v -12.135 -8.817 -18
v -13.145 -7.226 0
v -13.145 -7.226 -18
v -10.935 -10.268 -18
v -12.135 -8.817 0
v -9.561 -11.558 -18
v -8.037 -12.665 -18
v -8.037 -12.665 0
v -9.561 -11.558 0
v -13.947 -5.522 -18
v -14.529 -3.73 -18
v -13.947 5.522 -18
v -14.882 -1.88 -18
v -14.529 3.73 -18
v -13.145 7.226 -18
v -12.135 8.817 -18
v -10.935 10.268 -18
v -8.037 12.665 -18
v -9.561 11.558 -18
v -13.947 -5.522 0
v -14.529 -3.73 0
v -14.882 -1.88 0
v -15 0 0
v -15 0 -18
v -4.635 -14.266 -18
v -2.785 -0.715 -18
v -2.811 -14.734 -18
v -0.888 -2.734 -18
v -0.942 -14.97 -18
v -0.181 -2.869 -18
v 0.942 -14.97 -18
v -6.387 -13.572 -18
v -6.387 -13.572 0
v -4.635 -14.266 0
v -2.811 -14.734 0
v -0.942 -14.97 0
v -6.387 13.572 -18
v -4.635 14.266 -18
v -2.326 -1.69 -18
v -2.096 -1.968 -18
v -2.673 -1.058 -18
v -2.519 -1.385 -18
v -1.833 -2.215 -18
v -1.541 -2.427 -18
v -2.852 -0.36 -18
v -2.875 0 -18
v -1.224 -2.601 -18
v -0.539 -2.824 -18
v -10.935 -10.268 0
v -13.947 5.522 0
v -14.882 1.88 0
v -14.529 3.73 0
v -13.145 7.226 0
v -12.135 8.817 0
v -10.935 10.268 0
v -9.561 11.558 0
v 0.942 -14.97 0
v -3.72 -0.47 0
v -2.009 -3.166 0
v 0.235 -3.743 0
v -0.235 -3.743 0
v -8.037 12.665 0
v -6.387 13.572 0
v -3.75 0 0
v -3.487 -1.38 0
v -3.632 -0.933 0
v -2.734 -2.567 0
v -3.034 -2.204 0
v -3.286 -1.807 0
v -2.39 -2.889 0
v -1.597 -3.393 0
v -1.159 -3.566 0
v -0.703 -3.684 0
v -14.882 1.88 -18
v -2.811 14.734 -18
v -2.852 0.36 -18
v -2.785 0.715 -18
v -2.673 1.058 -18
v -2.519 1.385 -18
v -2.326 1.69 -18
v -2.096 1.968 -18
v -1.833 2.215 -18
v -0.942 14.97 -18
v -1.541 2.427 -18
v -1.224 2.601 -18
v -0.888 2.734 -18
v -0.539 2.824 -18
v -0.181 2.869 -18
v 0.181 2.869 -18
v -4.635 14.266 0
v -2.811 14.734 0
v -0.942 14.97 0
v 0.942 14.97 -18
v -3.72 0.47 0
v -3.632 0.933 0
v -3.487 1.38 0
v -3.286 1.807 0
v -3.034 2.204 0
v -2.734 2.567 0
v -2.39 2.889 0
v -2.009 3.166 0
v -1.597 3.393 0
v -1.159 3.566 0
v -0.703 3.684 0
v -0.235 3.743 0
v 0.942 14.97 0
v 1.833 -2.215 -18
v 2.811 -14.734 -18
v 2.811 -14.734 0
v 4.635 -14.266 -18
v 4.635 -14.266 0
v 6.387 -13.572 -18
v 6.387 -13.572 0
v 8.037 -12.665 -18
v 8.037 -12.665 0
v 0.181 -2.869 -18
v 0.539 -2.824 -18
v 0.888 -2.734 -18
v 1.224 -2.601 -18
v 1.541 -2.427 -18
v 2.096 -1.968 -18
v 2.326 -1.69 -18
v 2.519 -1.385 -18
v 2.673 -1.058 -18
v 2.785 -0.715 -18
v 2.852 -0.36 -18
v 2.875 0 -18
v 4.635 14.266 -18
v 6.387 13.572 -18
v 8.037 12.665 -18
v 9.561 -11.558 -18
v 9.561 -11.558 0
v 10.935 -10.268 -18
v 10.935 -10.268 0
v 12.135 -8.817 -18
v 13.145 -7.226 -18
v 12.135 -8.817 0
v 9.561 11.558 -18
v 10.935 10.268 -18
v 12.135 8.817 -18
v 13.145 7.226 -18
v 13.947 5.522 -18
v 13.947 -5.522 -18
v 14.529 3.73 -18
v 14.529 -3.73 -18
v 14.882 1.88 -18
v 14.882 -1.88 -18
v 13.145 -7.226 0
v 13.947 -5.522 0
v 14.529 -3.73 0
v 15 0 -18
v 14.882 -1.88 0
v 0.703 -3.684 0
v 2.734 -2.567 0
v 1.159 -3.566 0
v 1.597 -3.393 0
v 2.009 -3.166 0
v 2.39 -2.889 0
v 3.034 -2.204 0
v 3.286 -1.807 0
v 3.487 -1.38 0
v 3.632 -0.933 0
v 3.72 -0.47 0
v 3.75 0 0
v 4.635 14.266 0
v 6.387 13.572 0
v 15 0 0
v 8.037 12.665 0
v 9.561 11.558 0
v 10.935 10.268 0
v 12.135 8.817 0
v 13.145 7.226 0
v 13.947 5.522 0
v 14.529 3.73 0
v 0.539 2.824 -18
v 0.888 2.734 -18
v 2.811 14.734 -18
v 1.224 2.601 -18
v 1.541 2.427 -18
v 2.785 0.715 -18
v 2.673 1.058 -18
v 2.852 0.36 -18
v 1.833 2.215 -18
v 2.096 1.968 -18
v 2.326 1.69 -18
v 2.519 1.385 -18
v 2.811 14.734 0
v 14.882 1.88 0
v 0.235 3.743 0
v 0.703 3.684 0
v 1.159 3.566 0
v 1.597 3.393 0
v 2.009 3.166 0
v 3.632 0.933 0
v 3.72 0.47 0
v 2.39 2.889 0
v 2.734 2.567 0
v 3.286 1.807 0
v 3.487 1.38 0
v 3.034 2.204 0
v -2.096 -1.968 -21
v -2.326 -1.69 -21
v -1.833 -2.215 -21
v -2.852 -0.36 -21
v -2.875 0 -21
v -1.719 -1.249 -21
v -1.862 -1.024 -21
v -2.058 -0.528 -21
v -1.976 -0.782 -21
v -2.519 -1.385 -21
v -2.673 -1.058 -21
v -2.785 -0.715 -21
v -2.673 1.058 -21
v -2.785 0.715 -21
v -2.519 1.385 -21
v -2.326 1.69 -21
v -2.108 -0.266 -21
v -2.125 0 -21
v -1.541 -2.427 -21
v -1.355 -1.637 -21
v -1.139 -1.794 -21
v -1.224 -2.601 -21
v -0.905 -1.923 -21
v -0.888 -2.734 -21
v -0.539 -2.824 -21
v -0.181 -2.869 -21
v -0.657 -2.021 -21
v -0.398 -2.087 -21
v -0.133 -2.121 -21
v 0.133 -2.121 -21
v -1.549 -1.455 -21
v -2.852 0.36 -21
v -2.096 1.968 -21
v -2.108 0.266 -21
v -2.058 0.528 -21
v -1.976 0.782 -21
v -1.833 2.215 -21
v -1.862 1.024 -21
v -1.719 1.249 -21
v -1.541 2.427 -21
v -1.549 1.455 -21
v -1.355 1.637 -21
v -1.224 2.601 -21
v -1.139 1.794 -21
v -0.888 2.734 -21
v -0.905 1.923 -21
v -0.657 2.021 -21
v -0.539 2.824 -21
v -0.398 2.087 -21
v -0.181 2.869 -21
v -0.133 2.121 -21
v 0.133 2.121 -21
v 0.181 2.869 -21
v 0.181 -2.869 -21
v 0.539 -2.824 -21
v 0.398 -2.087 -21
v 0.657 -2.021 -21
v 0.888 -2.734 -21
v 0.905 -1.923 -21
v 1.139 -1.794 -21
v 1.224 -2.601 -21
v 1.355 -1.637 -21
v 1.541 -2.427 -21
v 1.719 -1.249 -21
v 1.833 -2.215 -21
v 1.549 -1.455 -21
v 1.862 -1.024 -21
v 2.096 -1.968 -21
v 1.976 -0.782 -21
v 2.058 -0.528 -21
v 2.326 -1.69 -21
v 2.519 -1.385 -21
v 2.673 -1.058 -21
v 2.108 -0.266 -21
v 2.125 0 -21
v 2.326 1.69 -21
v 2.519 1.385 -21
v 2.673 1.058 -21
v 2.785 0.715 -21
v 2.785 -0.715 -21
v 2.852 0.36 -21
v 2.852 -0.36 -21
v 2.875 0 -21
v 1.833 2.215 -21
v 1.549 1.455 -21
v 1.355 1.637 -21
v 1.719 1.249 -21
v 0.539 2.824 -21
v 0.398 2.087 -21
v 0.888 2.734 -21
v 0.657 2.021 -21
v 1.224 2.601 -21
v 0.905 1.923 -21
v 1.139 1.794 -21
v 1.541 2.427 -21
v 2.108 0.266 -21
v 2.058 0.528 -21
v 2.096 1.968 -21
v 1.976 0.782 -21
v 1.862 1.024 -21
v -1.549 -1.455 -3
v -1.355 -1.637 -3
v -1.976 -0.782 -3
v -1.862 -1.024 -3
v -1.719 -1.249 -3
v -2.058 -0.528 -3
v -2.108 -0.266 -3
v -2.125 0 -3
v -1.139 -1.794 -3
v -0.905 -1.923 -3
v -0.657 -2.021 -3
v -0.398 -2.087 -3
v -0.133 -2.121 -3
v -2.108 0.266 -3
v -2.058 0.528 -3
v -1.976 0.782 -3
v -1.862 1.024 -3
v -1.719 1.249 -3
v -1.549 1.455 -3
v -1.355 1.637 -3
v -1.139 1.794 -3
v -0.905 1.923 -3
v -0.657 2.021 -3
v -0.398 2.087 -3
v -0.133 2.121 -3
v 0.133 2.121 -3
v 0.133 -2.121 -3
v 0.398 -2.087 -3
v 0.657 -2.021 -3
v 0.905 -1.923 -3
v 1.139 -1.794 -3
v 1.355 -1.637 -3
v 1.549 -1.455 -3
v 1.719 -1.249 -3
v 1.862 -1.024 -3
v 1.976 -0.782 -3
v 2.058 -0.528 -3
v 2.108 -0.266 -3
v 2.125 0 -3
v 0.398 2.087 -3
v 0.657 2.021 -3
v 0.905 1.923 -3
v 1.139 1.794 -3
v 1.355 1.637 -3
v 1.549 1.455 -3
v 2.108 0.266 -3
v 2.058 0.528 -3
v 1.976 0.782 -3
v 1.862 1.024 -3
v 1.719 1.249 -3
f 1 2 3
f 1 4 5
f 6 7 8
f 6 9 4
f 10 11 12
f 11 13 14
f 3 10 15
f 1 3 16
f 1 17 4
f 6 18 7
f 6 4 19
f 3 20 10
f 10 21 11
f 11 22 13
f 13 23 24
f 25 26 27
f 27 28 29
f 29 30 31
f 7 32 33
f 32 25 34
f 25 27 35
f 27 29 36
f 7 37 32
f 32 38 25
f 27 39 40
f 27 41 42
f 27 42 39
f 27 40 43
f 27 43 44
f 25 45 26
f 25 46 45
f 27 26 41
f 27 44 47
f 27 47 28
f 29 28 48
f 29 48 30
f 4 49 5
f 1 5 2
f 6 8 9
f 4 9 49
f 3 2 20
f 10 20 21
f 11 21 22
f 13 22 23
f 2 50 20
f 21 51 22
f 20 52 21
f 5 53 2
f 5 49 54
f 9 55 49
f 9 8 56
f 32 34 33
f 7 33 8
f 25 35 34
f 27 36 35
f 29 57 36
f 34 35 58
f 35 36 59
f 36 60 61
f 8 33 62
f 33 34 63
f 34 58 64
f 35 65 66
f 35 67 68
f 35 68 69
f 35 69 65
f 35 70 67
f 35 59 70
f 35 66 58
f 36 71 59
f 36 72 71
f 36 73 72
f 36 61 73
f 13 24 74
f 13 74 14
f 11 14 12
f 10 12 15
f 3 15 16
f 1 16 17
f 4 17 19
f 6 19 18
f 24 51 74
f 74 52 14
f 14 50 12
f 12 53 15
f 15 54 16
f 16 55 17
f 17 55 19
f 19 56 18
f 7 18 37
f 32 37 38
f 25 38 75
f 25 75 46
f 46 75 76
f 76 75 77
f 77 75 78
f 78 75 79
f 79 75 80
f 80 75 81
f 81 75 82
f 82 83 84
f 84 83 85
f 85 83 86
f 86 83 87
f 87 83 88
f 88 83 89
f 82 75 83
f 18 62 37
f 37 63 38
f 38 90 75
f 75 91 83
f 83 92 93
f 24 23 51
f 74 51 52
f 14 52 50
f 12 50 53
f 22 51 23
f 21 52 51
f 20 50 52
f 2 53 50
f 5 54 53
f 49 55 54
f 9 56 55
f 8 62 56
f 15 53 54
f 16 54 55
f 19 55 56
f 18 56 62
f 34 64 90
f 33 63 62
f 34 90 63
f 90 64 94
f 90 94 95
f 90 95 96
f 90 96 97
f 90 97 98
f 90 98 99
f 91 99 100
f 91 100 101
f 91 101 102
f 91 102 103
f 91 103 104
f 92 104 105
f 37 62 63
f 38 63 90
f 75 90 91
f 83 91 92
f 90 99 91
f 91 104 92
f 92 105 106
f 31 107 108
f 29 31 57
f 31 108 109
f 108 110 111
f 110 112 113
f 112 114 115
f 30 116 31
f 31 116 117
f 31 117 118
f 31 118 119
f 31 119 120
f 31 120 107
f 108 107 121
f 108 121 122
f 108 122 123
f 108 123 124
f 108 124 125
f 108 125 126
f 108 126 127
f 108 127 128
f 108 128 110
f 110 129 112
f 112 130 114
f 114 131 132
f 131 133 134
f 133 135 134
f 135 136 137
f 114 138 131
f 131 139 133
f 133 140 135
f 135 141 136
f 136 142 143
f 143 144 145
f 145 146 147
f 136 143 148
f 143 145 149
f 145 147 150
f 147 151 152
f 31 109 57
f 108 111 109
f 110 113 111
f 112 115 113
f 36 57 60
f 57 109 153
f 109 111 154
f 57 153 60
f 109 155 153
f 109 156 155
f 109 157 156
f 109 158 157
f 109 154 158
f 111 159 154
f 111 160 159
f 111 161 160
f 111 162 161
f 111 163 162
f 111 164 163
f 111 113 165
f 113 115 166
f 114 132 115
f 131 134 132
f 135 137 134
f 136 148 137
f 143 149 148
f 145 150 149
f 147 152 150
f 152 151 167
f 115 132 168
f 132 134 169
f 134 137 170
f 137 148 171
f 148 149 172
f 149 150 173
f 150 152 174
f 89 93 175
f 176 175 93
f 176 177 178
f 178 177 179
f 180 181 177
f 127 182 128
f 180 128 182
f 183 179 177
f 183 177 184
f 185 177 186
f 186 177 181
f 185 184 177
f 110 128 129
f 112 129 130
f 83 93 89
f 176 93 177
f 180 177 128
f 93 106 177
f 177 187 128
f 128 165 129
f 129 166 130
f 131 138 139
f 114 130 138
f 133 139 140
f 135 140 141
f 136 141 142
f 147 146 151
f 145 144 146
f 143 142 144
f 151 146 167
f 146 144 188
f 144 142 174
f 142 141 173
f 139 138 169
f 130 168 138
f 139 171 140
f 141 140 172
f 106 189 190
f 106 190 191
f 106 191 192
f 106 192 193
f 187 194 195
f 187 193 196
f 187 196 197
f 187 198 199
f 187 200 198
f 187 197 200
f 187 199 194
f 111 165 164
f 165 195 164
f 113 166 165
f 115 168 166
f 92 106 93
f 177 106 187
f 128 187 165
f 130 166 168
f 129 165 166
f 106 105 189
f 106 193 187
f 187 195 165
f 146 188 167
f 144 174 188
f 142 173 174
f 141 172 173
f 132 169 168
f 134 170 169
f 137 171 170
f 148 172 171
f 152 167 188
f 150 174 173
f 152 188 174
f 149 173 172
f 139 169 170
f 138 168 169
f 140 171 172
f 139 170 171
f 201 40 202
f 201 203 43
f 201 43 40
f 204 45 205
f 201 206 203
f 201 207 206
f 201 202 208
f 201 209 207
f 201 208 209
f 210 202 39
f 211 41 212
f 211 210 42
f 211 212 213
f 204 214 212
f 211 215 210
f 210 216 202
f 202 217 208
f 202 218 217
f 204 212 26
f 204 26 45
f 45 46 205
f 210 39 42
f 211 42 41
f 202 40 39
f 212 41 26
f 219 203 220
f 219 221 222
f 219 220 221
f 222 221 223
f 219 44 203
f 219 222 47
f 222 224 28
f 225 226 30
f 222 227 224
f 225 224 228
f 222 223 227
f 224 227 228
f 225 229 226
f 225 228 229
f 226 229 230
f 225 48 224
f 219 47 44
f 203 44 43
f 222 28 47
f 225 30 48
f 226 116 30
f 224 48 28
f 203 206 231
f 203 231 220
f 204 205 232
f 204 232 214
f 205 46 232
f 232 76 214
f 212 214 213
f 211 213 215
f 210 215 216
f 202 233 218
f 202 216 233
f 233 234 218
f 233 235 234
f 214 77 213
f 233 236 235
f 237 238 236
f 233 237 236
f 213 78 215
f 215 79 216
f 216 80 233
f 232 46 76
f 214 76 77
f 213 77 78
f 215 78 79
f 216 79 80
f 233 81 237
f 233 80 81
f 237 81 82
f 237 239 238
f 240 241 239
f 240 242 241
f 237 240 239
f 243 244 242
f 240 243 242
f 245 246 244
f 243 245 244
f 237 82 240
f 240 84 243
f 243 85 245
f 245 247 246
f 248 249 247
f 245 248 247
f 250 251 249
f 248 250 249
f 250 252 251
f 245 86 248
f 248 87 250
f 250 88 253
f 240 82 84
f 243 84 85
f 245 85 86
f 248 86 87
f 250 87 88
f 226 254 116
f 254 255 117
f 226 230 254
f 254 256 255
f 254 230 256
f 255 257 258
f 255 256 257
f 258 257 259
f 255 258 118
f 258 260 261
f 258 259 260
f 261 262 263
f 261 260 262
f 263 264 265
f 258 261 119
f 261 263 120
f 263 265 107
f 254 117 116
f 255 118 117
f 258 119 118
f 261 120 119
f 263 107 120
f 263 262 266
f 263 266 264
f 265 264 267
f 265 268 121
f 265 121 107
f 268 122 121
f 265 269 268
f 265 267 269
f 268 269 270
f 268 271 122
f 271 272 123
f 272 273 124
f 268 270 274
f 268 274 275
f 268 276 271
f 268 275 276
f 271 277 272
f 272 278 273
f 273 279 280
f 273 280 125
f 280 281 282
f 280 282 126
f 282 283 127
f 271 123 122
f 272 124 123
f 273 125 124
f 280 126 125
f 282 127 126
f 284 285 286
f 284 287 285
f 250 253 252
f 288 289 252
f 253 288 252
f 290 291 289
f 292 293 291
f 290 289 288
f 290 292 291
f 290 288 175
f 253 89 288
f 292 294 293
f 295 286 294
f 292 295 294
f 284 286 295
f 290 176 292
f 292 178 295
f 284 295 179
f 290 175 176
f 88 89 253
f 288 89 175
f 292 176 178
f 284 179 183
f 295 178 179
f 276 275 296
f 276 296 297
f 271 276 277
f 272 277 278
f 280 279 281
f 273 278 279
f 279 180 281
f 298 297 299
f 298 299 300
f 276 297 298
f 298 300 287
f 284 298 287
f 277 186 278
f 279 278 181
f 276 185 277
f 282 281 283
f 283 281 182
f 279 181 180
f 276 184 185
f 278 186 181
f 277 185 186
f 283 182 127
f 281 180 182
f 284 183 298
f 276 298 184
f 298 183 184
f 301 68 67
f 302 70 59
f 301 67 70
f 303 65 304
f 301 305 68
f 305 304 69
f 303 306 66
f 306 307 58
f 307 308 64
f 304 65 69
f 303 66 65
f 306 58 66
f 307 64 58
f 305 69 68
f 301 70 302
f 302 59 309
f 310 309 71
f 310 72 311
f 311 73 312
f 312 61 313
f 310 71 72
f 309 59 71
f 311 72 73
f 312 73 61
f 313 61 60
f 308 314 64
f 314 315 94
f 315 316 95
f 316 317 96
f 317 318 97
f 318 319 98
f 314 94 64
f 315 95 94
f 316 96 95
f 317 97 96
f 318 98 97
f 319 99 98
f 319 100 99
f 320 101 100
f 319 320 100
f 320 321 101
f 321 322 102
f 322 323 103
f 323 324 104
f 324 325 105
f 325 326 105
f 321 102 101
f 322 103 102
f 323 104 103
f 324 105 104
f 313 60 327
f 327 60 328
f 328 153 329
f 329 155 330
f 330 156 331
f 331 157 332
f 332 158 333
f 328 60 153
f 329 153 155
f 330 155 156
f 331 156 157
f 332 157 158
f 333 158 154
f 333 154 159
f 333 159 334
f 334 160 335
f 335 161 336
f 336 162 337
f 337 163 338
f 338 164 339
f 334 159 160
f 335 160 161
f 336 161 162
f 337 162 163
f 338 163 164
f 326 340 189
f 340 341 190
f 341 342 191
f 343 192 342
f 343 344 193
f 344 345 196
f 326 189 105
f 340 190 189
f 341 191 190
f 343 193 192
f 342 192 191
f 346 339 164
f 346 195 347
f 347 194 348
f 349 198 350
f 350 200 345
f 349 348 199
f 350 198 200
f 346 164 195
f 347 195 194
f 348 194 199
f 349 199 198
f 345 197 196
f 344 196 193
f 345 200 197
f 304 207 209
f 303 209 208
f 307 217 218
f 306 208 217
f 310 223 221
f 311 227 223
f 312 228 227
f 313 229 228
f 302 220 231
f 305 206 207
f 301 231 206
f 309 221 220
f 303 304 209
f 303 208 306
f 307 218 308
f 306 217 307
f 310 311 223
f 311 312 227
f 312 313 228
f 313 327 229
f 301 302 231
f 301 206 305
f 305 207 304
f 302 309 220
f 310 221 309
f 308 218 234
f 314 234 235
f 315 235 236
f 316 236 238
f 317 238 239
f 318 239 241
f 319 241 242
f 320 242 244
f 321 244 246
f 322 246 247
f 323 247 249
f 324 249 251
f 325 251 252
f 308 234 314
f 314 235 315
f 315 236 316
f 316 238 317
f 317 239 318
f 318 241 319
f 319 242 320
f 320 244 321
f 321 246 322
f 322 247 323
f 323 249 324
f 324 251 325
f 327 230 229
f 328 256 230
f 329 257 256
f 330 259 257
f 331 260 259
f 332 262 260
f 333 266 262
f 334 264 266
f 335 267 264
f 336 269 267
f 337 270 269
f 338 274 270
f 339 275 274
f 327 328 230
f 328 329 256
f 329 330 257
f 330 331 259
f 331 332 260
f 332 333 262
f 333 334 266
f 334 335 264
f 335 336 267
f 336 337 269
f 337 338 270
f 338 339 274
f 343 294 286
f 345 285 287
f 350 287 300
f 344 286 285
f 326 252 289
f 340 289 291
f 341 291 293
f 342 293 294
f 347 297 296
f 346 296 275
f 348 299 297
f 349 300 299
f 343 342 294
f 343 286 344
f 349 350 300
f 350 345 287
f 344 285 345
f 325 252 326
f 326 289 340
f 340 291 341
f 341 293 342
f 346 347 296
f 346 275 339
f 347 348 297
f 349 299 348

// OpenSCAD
$fn = 50;


difference() {
	union() {
		translate(v = [0, 0, -18.0000000000]) {
			cylinder(h = 18, r = 15.0000000000);
		}
		#translate(v = [0, 0, -21.0000000000]) {
			cylinder(h = 21, r = 2.8750000000);
		}
	}
	union() {
		translate(v = [0, 0, 0]) {
			rotate(a = [0, 0, 0]) {
				difference() {
					union() {
						translate(v = [0, 0, -21.0000000000]) {
							cylinder(h = 21, r = 2.0000000000);
						}
						translate(v = [0, 0, -3]) {
							cylinder(h = 3, r1 = 2.1250000000, r2 = 3.7500000000);
						}
						translate(v = [0, 0, -21.0000000000]) {
							cylinder(h = 21, r = 2.1250000000);
						}
						translate(v = [0, 0, -21.0000000000]) {
							cylinder(h = 21, r = 2.0000000000);
						}
					}
					union();
				}
			}
		}
	}
}
